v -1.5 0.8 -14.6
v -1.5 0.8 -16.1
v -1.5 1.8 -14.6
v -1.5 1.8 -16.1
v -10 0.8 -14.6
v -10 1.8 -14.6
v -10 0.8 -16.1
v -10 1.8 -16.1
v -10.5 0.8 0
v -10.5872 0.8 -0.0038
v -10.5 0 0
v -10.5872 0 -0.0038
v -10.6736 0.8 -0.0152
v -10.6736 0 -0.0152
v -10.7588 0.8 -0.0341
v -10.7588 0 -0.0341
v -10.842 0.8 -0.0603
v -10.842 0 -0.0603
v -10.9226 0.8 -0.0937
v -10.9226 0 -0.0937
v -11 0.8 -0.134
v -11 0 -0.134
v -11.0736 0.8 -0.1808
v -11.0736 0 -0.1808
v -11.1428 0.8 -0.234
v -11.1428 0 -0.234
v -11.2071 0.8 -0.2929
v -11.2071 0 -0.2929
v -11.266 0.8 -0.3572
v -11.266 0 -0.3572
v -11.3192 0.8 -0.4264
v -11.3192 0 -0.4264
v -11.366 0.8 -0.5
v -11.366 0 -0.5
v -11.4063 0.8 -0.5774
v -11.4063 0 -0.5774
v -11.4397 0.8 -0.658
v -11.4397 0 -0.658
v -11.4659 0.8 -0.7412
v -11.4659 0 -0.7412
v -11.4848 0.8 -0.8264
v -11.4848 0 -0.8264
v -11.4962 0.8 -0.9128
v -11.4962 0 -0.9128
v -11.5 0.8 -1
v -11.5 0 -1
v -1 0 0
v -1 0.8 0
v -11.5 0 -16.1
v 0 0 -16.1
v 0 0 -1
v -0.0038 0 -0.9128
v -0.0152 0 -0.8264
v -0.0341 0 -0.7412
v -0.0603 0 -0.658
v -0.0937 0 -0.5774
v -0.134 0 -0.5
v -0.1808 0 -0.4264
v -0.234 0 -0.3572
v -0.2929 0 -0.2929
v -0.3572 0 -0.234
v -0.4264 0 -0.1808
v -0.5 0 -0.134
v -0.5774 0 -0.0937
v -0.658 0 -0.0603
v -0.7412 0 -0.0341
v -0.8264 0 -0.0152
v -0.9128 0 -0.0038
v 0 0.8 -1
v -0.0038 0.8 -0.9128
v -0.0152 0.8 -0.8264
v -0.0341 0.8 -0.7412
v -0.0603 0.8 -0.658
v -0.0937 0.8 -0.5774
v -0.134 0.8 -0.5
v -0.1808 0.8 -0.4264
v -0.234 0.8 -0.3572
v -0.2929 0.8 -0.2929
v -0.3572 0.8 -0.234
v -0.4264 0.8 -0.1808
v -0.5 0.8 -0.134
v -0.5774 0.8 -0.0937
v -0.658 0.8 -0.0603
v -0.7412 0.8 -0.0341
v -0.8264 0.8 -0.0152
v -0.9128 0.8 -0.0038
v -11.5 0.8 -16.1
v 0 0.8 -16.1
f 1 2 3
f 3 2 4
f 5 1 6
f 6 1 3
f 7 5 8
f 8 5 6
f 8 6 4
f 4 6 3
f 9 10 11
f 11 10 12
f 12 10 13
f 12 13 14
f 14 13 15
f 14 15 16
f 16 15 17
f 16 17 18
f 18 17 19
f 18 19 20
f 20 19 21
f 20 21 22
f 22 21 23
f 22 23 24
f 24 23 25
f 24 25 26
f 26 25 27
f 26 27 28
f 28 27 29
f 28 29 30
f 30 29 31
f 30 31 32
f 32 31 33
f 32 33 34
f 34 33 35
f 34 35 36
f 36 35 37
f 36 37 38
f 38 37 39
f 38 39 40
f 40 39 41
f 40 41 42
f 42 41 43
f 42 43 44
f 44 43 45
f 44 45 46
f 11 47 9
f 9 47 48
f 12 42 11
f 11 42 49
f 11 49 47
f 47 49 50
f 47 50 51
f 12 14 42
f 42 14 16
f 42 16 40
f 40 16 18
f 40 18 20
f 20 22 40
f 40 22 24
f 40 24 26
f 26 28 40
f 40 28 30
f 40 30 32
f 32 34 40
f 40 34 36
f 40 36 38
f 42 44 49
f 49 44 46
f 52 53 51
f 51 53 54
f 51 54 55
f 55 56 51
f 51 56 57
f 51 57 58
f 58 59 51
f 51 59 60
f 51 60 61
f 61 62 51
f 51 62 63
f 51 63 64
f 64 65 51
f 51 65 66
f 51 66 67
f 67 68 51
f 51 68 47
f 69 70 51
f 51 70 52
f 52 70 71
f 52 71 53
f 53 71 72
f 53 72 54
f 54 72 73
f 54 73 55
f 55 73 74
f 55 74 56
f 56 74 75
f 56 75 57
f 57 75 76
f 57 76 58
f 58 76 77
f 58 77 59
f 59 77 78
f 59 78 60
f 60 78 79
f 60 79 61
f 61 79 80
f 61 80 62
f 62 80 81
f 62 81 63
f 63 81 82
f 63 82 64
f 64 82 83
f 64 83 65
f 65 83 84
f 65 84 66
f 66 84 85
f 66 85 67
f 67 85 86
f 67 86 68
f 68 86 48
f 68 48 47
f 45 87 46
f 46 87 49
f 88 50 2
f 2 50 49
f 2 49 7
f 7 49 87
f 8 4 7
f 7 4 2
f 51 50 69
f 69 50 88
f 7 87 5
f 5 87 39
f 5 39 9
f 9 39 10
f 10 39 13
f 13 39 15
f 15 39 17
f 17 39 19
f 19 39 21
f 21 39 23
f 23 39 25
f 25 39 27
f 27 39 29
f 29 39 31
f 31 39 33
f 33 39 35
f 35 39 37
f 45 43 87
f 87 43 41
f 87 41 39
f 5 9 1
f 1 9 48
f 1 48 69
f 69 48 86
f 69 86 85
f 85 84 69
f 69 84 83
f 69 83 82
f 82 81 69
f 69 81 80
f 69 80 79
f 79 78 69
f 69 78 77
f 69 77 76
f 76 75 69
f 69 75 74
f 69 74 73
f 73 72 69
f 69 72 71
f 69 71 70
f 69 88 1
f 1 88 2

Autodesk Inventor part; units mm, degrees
ref_plane "YZ Plane" through (0, 0, 0) normal (1, 0, 0) x (0, 1, 0)
ref_plane "XZ Plane" through (0, 0, 0) normal (0, 1, 0) x (-1, 0, 0)
ref_plane "XY Plane" through (0, 0, 0) normal (0, 0, 1) x (1, 0, 0)
sketch "스케치1" plane through (0, 0, 0) normal (0, 1, 0) x (-1, 0, 0)
  line L0 (0, 0) -> (11.5, 0)
  line L1 (11.5, 0) -> (11.5, -16.1)
  line L2 (11.5, -16.1) -> (0, -16.1)
  line L3 (0, -16.1) -> (0, 0)
  dimension "d0" = 11.5
  dimension "d1" = 16.1
extrude "돌출1" add sketch "스케치1" along normal blind 0.8
fillet "모깎기1" radius 1 2 edges at (0, 0.4, 0) (-11.5, 0.4, 0)
sketch "스케치2" plane through (0, 0.8, 0) normal (0, 1, 0) x (1, 0, 0)
  line L0 (0, 1) -> (0, 16.1) projected
  line L1 (0, 16.1) -> (-11.5, 16.1) projected
  line L2 (-1.5, 16.1) -> (-10, 16.1)
  line L3 (-10, 16.1) -> (-10, 14.6)
  line L4 (-10, 14.6) -> (-1.5, 14.6)
  line L5 (-1.5, 14.6) -> (-1.5, 16.1)
  point P0 (0, 0)
  dimension "d5" = 8.5
  dimension "d6" = 1.5
  dimension "d7" = 1.5
extrude "돌출2" add sketch "스케치2" along normal blind 1
properties part number "Case_Top"
